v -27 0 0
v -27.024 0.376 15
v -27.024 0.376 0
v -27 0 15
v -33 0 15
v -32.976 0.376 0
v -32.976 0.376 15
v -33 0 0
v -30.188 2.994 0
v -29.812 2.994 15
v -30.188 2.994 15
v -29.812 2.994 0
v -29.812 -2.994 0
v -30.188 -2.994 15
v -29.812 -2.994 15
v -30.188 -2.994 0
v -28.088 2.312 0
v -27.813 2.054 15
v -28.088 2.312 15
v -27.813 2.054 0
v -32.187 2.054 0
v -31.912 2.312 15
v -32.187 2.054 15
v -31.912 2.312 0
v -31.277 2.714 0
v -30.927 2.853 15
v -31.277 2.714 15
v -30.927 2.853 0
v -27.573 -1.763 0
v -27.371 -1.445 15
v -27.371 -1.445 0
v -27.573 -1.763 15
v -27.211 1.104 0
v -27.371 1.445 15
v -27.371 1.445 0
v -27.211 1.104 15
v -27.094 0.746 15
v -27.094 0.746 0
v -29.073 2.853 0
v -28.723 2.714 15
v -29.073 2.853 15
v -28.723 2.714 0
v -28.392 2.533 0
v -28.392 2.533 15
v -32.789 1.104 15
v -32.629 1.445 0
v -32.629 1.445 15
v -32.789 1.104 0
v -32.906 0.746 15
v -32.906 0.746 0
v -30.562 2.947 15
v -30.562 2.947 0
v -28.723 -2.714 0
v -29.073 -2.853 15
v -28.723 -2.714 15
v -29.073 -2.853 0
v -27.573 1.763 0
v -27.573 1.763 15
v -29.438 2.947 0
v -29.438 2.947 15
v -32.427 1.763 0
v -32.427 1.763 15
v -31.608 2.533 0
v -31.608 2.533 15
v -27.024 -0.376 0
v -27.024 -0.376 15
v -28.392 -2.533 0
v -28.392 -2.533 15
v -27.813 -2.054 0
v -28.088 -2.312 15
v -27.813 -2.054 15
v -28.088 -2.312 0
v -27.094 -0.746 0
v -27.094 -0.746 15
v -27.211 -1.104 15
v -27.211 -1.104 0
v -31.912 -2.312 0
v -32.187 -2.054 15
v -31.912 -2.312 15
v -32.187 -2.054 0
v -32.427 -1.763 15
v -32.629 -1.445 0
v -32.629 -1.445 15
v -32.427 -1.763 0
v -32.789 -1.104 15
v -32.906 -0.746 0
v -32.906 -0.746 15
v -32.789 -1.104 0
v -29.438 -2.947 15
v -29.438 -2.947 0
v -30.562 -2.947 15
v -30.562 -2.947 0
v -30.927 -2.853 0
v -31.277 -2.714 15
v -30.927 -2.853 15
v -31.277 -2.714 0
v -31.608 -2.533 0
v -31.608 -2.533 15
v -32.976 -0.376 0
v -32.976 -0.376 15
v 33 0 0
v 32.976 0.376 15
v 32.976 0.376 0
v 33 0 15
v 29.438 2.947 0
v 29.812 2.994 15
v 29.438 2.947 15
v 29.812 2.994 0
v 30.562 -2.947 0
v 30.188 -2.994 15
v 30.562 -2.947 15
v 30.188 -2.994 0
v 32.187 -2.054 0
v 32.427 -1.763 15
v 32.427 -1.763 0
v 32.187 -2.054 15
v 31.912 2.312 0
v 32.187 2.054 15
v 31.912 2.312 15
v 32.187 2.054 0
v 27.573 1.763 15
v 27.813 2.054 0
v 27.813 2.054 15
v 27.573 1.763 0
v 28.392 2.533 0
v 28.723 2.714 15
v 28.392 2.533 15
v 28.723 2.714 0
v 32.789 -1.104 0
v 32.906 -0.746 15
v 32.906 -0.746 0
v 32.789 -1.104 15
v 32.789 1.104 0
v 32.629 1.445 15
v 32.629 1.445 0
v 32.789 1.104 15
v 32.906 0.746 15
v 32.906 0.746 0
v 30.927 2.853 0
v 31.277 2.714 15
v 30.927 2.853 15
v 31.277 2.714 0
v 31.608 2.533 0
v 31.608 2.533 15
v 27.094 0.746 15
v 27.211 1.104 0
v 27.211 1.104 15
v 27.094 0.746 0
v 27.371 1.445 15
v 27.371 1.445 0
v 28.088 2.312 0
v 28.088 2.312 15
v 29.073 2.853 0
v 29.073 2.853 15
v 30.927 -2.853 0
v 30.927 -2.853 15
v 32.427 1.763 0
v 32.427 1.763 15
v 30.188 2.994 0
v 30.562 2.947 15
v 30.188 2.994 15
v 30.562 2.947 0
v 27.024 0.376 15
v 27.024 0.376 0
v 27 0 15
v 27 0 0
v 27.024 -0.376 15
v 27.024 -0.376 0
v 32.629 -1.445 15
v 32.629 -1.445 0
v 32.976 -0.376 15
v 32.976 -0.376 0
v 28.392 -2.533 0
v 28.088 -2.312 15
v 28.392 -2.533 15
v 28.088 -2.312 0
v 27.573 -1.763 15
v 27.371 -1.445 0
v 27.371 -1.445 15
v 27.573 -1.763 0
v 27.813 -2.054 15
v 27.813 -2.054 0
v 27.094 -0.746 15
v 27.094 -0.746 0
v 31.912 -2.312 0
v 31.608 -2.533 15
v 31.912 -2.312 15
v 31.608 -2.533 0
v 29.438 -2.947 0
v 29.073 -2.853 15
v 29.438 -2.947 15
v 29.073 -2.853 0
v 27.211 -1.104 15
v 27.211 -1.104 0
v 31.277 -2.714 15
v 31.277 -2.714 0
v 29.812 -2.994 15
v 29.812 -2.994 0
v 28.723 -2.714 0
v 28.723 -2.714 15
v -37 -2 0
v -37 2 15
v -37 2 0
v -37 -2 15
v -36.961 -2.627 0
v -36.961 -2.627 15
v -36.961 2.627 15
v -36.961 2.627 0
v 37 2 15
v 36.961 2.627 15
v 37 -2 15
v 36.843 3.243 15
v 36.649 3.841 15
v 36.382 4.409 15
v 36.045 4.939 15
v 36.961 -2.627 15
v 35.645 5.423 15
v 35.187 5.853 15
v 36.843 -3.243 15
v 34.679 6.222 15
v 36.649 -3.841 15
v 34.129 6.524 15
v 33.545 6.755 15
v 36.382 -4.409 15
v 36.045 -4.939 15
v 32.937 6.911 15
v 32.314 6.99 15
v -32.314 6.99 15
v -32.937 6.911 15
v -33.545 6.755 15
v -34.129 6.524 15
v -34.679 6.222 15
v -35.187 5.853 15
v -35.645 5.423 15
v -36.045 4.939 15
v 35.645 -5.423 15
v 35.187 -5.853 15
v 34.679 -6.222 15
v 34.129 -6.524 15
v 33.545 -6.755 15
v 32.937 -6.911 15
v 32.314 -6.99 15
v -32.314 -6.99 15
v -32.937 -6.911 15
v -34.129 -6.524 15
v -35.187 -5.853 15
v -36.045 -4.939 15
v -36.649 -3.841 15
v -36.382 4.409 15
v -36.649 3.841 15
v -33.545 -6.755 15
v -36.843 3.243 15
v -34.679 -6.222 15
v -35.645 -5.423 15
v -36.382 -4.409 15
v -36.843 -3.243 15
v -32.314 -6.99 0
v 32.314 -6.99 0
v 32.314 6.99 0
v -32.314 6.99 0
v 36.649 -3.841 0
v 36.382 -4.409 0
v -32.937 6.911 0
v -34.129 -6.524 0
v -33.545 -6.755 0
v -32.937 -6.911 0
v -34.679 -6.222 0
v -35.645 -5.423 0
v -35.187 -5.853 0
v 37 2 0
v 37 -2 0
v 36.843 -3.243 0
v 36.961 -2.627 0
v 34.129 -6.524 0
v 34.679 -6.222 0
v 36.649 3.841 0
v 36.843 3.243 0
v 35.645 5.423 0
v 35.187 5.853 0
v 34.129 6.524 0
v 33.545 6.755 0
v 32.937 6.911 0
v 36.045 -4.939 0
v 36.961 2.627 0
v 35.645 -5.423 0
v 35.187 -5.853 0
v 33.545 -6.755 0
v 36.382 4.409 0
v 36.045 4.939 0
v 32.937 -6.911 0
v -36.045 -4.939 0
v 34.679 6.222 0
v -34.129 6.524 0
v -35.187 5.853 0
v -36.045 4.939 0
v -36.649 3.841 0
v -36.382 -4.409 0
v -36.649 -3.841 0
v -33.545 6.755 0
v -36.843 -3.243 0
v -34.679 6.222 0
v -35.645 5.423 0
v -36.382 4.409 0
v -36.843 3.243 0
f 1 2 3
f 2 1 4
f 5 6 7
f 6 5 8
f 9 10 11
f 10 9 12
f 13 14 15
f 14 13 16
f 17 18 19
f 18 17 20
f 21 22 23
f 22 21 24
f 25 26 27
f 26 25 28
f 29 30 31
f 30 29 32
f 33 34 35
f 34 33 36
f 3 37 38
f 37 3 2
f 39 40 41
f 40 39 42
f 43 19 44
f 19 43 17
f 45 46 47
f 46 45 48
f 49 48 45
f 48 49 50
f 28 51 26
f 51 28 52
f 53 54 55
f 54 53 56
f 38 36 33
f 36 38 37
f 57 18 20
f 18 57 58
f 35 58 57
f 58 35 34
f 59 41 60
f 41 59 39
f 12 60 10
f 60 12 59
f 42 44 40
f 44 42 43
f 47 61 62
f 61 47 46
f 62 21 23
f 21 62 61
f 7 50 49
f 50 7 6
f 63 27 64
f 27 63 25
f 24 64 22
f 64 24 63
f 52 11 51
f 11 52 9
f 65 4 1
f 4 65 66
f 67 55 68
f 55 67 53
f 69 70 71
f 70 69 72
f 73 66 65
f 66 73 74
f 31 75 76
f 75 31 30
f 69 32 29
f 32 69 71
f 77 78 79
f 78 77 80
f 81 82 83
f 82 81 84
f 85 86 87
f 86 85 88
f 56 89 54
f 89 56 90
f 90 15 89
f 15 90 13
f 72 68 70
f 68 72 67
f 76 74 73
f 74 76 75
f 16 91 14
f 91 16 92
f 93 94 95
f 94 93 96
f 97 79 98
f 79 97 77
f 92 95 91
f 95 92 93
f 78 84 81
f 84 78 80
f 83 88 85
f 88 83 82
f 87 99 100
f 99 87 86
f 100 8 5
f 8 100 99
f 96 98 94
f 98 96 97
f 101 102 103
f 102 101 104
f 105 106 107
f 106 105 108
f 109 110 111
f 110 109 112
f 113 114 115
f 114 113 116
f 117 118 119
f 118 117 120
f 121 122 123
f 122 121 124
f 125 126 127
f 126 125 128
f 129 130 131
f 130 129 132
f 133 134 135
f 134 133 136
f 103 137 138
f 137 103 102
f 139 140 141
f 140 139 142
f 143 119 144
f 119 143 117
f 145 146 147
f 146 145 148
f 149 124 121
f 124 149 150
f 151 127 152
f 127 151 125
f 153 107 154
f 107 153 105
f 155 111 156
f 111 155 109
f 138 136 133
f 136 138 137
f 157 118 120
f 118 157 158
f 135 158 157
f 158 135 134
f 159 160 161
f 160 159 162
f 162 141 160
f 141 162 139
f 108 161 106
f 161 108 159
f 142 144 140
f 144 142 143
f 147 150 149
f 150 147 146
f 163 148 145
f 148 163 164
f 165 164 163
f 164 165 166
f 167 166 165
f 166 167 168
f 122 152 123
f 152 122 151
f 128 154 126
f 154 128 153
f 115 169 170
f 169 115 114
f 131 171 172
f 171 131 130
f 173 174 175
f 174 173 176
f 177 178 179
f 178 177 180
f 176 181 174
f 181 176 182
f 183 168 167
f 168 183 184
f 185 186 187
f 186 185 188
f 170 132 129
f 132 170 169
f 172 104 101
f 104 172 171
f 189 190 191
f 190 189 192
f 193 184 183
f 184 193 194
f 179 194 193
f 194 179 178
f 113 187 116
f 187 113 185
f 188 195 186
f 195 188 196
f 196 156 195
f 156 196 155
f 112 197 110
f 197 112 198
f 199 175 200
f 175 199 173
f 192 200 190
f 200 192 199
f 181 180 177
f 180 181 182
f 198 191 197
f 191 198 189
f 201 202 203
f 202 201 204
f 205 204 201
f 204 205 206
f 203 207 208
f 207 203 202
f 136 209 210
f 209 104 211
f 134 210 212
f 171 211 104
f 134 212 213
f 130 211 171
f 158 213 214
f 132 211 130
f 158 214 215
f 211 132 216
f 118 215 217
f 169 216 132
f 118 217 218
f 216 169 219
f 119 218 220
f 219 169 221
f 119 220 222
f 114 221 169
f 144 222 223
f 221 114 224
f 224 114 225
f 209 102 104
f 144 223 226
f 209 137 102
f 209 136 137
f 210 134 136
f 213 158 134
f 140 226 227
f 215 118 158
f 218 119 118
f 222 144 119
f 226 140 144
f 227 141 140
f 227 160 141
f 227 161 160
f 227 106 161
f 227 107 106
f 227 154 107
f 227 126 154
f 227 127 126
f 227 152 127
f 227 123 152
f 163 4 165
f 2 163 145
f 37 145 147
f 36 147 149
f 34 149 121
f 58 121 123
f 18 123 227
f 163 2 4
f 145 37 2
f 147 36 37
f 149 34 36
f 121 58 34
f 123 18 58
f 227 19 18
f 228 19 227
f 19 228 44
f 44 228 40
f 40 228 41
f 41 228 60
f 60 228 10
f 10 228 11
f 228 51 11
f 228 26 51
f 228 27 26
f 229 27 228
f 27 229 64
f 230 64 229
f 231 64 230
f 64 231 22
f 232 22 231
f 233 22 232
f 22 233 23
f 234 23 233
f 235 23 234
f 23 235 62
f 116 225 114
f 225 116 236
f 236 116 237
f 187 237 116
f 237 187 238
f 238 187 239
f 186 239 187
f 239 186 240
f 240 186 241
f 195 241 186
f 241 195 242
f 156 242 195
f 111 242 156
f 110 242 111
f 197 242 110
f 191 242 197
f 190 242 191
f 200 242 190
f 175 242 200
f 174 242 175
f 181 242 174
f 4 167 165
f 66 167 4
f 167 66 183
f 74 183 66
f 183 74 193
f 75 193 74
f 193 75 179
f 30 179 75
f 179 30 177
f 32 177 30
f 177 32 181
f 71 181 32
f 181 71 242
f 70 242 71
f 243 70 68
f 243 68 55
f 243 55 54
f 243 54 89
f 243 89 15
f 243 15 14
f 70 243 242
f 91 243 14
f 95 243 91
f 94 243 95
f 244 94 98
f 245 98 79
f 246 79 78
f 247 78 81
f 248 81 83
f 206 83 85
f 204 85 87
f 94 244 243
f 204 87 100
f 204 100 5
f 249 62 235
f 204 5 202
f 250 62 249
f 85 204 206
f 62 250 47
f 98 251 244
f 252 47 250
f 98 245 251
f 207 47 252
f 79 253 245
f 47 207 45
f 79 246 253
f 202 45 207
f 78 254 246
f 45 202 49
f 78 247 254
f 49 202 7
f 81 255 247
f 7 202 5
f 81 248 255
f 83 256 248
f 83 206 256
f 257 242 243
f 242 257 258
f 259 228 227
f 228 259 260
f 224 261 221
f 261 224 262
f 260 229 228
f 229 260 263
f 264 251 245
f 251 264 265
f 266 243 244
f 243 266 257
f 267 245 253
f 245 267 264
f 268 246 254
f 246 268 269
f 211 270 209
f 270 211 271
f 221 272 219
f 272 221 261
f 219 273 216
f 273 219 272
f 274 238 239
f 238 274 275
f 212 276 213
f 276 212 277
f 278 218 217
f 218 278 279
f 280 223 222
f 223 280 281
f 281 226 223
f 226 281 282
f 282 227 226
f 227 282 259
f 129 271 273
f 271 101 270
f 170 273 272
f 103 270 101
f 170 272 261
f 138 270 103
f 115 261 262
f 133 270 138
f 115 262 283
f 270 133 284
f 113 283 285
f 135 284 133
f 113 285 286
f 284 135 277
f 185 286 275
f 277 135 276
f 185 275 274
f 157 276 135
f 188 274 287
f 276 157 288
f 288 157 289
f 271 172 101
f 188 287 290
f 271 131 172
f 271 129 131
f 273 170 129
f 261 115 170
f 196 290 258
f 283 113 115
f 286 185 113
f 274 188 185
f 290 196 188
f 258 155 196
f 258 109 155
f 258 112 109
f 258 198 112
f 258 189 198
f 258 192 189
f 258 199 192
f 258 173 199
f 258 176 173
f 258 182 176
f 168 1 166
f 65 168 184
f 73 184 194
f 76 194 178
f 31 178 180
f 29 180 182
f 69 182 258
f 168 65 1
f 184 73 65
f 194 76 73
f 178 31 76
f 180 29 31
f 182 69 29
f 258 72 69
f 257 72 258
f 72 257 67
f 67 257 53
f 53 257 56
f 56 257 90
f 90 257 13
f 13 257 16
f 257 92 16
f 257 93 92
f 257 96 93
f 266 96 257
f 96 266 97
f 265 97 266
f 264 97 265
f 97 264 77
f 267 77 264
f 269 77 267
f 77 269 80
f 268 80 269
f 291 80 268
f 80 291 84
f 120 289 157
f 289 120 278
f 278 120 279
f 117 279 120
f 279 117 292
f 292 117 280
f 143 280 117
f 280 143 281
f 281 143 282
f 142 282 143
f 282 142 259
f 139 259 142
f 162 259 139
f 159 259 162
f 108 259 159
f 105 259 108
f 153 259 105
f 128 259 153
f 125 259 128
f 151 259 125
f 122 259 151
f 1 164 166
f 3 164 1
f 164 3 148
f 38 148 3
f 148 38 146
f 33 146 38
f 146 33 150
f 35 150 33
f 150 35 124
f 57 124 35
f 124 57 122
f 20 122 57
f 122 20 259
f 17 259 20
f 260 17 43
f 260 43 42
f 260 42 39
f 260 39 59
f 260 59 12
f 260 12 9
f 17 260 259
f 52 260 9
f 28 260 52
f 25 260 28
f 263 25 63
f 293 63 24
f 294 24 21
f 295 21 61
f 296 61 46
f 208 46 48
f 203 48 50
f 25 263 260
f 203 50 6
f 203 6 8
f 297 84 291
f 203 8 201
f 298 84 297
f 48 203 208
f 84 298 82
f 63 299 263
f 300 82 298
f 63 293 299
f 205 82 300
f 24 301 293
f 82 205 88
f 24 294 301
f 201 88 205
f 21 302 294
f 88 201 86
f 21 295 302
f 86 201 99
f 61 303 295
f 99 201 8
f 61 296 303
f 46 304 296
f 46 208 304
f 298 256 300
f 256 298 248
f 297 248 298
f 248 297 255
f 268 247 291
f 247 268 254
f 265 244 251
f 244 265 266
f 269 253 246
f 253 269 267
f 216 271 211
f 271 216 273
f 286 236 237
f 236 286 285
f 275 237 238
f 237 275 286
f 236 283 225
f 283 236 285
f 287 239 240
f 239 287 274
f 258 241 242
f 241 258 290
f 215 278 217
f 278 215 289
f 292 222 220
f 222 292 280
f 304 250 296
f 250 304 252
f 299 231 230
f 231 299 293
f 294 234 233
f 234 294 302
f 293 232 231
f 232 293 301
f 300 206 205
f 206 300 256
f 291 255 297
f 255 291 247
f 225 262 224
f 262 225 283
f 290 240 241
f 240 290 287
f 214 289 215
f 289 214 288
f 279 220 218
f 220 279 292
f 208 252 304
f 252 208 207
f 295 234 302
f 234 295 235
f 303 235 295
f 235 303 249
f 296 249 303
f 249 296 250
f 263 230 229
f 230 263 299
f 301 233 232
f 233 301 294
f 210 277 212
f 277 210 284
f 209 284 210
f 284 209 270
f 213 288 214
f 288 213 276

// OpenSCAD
$fn = 50;


difference() {
	union() {
		hull() {
			translate(v = [-32.0000000000, 2.0000000000, 0]) {
				cylinder(h = 15, r = 5);
			}
			translate(v = [32.0000000000, 2.0000000000, 0]) {
				cylinder(h = 15, r = 5);
			}
			translate(v = [-32.0000000000, -2.0000000000, 0]) {
				cylinder(h = 15, r = 5);
			}
			translate(v = [32.0000000000, -2.0000000000, 0]) {
				cylinder(h = 15, r = 5);
			}
		}
	}
	union() {
		translate(v = [-30.0000000000, 0.0000000000, -100.0000000000]) {
			cylinder(h = 200, r = 3.0000000000);
		}
		translate(v = [-30.0000000000, 0.0000000000, -100.0000000000]) {
			cylinder(h = 200, r = 3.0000000000);
		}
		translate(v = [30.0000000000, 0.0000000000, -100.0000000000]) {
			cylinder(h = 200, r = 3.0000000000);
		}
		translate(v = [30.0000000000, 0.0000000000, -100.0000000000]) {
			cylinder(h = 200, r = 3.0000000000);
		}
	}
}
